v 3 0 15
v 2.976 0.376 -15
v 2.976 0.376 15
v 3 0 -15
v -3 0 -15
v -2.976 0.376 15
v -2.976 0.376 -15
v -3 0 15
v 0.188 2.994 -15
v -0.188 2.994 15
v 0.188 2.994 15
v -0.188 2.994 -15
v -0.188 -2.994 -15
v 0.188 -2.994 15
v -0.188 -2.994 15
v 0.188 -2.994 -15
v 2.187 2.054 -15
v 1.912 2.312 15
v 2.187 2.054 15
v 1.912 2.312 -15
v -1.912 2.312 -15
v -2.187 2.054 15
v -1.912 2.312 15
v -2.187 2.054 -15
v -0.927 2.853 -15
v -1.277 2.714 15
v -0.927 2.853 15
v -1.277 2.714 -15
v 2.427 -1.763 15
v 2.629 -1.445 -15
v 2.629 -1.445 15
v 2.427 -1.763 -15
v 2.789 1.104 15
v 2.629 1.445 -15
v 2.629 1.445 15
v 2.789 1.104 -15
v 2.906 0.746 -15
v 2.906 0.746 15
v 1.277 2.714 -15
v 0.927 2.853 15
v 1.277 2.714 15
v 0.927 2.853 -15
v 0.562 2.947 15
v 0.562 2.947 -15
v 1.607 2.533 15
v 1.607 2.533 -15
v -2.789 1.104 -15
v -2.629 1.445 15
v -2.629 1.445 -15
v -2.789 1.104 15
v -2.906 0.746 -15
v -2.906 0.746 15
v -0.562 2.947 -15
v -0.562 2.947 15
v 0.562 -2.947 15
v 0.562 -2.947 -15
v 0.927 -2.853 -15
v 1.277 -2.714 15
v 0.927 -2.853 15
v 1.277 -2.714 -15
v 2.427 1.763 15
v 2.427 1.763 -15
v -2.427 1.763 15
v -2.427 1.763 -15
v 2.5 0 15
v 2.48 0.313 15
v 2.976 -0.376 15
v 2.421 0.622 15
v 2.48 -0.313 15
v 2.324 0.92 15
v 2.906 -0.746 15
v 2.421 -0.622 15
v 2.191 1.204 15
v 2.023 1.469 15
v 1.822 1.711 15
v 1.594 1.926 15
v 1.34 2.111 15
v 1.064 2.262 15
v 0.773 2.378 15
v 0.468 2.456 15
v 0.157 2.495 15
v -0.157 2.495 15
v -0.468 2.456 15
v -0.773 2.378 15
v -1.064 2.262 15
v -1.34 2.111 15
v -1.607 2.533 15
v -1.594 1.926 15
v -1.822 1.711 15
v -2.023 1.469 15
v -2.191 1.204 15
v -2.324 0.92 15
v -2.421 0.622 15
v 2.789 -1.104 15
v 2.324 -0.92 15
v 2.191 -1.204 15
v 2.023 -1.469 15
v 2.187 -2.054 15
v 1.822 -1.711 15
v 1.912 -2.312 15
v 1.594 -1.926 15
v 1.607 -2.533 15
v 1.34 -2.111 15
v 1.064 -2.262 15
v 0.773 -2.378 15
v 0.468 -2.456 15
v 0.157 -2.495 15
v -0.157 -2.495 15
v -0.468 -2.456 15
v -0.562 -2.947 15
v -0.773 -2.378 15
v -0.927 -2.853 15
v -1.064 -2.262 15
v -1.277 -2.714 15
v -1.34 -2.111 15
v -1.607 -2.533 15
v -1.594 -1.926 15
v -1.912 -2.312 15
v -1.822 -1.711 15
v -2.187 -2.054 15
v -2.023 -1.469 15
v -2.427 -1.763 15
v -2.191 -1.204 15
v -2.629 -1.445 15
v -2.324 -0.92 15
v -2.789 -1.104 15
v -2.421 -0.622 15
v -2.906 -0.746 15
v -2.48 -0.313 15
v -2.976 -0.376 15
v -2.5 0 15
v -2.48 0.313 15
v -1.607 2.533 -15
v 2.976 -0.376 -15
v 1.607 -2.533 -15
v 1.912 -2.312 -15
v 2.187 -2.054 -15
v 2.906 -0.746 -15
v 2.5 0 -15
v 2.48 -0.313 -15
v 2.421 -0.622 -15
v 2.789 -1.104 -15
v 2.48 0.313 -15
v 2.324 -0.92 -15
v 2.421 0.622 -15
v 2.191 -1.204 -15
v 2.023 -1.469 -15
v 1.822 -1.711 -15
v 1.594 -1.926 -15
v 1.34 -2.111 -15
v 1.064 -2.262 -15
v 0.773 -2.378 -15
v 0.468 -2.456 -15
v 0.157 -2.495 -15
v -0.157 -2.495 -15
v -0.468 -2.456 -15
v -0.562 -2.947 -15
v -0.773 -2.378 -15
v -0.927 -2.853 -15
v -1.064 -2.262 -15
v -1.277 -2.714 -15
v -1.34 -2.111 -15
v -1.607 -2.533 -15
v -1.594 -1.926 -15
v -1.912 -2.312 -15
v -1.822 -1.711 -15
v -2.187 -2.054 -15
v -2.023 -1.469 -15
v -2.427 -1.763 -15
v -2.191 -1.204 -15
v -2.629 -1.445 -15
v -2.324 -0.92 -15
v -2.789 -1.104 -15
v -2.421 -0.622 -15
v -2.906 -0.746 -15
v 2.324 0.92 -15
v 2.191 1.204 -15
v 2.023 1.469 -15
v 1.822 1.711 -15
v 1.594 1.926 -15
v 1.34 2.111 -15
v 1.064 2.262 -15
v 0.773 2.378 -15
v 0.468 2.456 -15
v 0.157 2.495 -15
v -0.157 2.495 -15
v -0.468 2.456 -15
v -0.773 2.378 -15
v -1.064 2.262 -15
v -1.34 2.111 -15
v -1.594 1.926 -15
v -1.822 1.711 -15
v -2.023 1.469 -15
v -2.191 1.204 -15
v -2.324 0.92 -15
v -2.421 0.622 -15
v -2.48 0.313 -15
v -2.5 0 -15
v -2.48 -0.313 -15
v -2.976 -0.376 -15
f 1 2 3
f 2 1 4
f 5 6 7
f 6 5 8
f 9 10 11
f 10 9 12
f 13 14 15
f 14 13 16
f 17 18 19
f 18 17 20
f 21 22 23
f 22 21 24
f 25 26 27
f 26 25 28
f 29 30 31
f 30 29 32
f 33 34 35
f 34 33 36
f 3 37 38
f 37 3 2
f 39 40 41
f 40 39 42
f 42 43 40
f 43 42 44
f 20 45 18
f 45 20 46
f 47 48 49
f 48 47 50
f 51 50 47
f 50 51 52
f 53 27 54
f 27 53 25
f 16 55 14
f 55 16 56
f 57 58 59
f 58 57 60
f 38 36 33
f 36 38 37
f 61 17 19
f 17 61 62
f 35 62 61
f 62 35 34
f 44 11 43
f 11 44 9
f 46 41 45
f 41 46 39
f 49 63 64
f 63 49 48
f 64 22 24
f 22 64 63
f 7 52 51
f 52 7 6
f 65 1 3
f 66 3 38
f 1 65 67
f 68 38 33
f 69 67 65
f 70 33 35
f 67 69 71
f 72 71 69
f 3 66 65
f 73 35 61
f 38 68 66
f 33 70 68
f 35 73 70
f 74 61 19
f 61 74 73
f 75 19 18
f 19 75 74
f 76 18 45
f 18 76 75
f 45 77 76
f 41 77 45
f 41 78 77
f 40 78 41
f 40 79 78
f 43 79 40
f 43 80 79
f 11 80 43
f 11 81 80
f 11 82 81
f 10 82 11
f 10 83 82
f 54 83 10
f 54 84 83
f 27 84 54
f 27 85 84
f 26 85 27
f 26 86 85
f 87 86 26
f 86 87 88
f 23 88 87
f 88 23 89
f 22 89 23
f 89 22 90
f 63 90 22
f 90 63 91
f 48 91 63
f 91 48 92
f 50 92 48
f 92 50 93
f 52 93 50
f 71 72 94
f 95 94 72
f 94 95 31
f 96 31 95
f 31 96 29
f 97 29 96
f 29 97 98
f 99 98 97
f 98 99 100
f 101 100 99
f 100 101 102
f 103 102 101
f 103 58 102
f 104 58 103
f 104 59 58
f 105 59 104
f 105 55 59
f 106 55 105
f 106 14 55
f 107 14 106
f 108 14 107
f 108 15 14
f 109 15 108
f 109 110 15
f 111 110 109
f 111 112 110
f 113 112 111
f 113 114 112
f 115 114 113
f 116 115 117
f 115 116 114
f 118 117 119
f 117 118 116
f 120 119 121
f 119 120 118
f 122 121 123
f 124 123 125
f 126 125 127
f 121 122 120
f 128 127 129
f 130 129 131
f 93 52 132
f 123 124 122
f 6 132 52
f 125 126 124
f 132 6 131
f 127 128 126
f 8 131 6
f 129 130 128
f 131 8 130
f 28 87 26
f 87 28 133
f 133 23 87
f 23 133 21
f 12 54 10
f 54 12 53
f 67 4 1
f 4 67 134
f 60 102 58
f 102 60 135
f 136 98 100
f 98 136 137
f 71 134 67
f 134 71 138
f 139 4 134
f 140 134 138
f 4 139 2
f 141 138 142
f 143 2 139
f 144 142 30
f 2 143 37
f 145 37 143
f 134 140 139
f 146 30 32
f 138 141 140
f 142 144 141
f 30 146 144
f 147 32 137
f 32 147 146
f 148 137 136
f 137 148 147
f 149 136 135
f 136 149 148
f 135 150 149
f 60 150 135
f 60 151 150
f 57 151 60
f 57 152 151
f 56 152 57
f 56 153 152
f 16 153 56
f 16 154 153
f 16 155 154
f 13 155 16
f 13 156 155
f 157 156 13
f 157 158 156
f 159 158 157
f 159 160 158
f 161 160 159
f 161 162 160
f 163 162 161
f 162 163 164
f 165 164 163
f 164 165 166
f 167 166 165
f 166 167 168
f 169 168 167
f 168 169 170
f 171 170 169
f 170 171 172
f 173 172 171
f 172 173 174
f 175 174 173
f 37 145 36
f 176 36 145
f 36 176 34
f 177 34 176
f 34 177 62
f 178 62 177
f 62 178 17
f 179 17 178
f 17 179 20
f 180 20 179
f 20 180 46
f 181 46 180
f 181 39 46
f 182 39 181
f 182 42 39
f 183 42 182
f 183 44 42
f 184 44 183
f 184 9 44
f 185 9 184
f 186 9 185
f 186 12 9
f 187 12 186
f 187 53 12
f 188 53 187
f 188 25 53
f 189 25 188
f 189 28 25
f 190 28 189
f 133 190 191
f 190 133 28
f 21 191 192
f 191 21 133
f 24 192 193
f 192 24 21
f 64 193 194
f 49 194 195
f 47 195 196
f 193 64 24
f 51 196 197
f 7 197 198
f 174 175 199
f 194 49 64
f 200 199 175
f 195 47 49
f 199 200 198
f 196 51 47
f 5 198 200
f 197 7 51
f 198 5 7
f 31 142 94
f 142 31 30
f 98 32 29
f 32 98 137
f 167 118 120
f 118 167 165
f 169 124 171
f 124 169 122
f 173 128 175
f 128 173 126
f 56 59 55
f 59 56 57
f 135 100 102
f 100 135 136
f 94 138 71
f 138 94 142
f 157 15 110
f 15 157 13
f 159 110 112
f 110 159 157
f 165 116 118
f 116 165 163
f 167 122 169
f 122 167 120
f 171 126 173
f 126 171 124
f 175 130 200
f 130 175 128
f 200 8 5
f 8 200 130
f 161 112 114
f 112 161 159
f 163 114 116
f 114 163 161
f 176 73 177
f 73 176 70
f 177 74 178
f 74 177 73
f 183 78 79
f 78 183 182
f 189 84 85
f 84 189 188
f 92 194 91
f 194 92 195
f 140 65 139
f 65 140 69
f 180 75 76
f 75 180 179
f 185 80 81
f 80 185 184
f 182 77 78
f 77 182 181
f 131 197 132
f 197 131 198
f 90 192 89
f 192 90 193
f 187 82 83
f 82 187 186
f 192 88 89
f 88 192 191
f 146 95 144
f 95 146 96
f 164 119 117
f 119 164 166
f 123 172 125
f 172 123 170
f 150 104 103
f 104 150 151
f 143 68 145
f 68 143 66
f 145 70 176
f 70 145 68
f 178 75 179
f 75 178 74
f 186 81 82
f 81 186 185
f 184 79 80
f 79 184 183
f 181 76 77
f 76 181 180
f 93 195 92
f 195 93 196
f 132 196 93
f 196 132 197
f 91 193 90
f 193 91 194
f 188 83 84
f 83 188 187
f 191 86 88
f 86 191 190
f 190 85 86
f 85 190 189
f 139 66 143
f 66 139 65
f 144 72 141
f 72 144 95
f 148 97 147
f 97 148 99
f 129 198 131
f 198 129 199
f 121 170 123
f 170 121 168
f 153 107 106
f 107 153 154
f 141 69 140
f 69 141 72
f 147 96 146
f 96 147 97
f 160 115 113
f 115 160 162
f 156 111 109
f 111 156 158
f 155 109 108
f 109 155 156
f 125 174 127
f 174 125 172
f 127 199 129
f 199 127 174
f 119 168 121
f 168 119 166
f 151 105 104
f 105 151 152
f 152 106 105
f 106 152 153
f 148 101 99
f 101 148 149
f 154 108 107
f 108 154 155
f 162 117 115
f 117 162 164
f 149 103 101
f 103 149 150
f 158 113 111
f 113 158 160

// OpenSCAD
$fn = 50;


difference() {
	union() {
		translate(v = [0, 0, -15.0000000000]) {
			cylinder(h = 30, r = 3.0000000000);
		}
	}
	union() {
		translate(v = [0, 0, -100.0000000000]) {
			cylinder(h = 200, r = 2.5000000000);
		}
	}
}
